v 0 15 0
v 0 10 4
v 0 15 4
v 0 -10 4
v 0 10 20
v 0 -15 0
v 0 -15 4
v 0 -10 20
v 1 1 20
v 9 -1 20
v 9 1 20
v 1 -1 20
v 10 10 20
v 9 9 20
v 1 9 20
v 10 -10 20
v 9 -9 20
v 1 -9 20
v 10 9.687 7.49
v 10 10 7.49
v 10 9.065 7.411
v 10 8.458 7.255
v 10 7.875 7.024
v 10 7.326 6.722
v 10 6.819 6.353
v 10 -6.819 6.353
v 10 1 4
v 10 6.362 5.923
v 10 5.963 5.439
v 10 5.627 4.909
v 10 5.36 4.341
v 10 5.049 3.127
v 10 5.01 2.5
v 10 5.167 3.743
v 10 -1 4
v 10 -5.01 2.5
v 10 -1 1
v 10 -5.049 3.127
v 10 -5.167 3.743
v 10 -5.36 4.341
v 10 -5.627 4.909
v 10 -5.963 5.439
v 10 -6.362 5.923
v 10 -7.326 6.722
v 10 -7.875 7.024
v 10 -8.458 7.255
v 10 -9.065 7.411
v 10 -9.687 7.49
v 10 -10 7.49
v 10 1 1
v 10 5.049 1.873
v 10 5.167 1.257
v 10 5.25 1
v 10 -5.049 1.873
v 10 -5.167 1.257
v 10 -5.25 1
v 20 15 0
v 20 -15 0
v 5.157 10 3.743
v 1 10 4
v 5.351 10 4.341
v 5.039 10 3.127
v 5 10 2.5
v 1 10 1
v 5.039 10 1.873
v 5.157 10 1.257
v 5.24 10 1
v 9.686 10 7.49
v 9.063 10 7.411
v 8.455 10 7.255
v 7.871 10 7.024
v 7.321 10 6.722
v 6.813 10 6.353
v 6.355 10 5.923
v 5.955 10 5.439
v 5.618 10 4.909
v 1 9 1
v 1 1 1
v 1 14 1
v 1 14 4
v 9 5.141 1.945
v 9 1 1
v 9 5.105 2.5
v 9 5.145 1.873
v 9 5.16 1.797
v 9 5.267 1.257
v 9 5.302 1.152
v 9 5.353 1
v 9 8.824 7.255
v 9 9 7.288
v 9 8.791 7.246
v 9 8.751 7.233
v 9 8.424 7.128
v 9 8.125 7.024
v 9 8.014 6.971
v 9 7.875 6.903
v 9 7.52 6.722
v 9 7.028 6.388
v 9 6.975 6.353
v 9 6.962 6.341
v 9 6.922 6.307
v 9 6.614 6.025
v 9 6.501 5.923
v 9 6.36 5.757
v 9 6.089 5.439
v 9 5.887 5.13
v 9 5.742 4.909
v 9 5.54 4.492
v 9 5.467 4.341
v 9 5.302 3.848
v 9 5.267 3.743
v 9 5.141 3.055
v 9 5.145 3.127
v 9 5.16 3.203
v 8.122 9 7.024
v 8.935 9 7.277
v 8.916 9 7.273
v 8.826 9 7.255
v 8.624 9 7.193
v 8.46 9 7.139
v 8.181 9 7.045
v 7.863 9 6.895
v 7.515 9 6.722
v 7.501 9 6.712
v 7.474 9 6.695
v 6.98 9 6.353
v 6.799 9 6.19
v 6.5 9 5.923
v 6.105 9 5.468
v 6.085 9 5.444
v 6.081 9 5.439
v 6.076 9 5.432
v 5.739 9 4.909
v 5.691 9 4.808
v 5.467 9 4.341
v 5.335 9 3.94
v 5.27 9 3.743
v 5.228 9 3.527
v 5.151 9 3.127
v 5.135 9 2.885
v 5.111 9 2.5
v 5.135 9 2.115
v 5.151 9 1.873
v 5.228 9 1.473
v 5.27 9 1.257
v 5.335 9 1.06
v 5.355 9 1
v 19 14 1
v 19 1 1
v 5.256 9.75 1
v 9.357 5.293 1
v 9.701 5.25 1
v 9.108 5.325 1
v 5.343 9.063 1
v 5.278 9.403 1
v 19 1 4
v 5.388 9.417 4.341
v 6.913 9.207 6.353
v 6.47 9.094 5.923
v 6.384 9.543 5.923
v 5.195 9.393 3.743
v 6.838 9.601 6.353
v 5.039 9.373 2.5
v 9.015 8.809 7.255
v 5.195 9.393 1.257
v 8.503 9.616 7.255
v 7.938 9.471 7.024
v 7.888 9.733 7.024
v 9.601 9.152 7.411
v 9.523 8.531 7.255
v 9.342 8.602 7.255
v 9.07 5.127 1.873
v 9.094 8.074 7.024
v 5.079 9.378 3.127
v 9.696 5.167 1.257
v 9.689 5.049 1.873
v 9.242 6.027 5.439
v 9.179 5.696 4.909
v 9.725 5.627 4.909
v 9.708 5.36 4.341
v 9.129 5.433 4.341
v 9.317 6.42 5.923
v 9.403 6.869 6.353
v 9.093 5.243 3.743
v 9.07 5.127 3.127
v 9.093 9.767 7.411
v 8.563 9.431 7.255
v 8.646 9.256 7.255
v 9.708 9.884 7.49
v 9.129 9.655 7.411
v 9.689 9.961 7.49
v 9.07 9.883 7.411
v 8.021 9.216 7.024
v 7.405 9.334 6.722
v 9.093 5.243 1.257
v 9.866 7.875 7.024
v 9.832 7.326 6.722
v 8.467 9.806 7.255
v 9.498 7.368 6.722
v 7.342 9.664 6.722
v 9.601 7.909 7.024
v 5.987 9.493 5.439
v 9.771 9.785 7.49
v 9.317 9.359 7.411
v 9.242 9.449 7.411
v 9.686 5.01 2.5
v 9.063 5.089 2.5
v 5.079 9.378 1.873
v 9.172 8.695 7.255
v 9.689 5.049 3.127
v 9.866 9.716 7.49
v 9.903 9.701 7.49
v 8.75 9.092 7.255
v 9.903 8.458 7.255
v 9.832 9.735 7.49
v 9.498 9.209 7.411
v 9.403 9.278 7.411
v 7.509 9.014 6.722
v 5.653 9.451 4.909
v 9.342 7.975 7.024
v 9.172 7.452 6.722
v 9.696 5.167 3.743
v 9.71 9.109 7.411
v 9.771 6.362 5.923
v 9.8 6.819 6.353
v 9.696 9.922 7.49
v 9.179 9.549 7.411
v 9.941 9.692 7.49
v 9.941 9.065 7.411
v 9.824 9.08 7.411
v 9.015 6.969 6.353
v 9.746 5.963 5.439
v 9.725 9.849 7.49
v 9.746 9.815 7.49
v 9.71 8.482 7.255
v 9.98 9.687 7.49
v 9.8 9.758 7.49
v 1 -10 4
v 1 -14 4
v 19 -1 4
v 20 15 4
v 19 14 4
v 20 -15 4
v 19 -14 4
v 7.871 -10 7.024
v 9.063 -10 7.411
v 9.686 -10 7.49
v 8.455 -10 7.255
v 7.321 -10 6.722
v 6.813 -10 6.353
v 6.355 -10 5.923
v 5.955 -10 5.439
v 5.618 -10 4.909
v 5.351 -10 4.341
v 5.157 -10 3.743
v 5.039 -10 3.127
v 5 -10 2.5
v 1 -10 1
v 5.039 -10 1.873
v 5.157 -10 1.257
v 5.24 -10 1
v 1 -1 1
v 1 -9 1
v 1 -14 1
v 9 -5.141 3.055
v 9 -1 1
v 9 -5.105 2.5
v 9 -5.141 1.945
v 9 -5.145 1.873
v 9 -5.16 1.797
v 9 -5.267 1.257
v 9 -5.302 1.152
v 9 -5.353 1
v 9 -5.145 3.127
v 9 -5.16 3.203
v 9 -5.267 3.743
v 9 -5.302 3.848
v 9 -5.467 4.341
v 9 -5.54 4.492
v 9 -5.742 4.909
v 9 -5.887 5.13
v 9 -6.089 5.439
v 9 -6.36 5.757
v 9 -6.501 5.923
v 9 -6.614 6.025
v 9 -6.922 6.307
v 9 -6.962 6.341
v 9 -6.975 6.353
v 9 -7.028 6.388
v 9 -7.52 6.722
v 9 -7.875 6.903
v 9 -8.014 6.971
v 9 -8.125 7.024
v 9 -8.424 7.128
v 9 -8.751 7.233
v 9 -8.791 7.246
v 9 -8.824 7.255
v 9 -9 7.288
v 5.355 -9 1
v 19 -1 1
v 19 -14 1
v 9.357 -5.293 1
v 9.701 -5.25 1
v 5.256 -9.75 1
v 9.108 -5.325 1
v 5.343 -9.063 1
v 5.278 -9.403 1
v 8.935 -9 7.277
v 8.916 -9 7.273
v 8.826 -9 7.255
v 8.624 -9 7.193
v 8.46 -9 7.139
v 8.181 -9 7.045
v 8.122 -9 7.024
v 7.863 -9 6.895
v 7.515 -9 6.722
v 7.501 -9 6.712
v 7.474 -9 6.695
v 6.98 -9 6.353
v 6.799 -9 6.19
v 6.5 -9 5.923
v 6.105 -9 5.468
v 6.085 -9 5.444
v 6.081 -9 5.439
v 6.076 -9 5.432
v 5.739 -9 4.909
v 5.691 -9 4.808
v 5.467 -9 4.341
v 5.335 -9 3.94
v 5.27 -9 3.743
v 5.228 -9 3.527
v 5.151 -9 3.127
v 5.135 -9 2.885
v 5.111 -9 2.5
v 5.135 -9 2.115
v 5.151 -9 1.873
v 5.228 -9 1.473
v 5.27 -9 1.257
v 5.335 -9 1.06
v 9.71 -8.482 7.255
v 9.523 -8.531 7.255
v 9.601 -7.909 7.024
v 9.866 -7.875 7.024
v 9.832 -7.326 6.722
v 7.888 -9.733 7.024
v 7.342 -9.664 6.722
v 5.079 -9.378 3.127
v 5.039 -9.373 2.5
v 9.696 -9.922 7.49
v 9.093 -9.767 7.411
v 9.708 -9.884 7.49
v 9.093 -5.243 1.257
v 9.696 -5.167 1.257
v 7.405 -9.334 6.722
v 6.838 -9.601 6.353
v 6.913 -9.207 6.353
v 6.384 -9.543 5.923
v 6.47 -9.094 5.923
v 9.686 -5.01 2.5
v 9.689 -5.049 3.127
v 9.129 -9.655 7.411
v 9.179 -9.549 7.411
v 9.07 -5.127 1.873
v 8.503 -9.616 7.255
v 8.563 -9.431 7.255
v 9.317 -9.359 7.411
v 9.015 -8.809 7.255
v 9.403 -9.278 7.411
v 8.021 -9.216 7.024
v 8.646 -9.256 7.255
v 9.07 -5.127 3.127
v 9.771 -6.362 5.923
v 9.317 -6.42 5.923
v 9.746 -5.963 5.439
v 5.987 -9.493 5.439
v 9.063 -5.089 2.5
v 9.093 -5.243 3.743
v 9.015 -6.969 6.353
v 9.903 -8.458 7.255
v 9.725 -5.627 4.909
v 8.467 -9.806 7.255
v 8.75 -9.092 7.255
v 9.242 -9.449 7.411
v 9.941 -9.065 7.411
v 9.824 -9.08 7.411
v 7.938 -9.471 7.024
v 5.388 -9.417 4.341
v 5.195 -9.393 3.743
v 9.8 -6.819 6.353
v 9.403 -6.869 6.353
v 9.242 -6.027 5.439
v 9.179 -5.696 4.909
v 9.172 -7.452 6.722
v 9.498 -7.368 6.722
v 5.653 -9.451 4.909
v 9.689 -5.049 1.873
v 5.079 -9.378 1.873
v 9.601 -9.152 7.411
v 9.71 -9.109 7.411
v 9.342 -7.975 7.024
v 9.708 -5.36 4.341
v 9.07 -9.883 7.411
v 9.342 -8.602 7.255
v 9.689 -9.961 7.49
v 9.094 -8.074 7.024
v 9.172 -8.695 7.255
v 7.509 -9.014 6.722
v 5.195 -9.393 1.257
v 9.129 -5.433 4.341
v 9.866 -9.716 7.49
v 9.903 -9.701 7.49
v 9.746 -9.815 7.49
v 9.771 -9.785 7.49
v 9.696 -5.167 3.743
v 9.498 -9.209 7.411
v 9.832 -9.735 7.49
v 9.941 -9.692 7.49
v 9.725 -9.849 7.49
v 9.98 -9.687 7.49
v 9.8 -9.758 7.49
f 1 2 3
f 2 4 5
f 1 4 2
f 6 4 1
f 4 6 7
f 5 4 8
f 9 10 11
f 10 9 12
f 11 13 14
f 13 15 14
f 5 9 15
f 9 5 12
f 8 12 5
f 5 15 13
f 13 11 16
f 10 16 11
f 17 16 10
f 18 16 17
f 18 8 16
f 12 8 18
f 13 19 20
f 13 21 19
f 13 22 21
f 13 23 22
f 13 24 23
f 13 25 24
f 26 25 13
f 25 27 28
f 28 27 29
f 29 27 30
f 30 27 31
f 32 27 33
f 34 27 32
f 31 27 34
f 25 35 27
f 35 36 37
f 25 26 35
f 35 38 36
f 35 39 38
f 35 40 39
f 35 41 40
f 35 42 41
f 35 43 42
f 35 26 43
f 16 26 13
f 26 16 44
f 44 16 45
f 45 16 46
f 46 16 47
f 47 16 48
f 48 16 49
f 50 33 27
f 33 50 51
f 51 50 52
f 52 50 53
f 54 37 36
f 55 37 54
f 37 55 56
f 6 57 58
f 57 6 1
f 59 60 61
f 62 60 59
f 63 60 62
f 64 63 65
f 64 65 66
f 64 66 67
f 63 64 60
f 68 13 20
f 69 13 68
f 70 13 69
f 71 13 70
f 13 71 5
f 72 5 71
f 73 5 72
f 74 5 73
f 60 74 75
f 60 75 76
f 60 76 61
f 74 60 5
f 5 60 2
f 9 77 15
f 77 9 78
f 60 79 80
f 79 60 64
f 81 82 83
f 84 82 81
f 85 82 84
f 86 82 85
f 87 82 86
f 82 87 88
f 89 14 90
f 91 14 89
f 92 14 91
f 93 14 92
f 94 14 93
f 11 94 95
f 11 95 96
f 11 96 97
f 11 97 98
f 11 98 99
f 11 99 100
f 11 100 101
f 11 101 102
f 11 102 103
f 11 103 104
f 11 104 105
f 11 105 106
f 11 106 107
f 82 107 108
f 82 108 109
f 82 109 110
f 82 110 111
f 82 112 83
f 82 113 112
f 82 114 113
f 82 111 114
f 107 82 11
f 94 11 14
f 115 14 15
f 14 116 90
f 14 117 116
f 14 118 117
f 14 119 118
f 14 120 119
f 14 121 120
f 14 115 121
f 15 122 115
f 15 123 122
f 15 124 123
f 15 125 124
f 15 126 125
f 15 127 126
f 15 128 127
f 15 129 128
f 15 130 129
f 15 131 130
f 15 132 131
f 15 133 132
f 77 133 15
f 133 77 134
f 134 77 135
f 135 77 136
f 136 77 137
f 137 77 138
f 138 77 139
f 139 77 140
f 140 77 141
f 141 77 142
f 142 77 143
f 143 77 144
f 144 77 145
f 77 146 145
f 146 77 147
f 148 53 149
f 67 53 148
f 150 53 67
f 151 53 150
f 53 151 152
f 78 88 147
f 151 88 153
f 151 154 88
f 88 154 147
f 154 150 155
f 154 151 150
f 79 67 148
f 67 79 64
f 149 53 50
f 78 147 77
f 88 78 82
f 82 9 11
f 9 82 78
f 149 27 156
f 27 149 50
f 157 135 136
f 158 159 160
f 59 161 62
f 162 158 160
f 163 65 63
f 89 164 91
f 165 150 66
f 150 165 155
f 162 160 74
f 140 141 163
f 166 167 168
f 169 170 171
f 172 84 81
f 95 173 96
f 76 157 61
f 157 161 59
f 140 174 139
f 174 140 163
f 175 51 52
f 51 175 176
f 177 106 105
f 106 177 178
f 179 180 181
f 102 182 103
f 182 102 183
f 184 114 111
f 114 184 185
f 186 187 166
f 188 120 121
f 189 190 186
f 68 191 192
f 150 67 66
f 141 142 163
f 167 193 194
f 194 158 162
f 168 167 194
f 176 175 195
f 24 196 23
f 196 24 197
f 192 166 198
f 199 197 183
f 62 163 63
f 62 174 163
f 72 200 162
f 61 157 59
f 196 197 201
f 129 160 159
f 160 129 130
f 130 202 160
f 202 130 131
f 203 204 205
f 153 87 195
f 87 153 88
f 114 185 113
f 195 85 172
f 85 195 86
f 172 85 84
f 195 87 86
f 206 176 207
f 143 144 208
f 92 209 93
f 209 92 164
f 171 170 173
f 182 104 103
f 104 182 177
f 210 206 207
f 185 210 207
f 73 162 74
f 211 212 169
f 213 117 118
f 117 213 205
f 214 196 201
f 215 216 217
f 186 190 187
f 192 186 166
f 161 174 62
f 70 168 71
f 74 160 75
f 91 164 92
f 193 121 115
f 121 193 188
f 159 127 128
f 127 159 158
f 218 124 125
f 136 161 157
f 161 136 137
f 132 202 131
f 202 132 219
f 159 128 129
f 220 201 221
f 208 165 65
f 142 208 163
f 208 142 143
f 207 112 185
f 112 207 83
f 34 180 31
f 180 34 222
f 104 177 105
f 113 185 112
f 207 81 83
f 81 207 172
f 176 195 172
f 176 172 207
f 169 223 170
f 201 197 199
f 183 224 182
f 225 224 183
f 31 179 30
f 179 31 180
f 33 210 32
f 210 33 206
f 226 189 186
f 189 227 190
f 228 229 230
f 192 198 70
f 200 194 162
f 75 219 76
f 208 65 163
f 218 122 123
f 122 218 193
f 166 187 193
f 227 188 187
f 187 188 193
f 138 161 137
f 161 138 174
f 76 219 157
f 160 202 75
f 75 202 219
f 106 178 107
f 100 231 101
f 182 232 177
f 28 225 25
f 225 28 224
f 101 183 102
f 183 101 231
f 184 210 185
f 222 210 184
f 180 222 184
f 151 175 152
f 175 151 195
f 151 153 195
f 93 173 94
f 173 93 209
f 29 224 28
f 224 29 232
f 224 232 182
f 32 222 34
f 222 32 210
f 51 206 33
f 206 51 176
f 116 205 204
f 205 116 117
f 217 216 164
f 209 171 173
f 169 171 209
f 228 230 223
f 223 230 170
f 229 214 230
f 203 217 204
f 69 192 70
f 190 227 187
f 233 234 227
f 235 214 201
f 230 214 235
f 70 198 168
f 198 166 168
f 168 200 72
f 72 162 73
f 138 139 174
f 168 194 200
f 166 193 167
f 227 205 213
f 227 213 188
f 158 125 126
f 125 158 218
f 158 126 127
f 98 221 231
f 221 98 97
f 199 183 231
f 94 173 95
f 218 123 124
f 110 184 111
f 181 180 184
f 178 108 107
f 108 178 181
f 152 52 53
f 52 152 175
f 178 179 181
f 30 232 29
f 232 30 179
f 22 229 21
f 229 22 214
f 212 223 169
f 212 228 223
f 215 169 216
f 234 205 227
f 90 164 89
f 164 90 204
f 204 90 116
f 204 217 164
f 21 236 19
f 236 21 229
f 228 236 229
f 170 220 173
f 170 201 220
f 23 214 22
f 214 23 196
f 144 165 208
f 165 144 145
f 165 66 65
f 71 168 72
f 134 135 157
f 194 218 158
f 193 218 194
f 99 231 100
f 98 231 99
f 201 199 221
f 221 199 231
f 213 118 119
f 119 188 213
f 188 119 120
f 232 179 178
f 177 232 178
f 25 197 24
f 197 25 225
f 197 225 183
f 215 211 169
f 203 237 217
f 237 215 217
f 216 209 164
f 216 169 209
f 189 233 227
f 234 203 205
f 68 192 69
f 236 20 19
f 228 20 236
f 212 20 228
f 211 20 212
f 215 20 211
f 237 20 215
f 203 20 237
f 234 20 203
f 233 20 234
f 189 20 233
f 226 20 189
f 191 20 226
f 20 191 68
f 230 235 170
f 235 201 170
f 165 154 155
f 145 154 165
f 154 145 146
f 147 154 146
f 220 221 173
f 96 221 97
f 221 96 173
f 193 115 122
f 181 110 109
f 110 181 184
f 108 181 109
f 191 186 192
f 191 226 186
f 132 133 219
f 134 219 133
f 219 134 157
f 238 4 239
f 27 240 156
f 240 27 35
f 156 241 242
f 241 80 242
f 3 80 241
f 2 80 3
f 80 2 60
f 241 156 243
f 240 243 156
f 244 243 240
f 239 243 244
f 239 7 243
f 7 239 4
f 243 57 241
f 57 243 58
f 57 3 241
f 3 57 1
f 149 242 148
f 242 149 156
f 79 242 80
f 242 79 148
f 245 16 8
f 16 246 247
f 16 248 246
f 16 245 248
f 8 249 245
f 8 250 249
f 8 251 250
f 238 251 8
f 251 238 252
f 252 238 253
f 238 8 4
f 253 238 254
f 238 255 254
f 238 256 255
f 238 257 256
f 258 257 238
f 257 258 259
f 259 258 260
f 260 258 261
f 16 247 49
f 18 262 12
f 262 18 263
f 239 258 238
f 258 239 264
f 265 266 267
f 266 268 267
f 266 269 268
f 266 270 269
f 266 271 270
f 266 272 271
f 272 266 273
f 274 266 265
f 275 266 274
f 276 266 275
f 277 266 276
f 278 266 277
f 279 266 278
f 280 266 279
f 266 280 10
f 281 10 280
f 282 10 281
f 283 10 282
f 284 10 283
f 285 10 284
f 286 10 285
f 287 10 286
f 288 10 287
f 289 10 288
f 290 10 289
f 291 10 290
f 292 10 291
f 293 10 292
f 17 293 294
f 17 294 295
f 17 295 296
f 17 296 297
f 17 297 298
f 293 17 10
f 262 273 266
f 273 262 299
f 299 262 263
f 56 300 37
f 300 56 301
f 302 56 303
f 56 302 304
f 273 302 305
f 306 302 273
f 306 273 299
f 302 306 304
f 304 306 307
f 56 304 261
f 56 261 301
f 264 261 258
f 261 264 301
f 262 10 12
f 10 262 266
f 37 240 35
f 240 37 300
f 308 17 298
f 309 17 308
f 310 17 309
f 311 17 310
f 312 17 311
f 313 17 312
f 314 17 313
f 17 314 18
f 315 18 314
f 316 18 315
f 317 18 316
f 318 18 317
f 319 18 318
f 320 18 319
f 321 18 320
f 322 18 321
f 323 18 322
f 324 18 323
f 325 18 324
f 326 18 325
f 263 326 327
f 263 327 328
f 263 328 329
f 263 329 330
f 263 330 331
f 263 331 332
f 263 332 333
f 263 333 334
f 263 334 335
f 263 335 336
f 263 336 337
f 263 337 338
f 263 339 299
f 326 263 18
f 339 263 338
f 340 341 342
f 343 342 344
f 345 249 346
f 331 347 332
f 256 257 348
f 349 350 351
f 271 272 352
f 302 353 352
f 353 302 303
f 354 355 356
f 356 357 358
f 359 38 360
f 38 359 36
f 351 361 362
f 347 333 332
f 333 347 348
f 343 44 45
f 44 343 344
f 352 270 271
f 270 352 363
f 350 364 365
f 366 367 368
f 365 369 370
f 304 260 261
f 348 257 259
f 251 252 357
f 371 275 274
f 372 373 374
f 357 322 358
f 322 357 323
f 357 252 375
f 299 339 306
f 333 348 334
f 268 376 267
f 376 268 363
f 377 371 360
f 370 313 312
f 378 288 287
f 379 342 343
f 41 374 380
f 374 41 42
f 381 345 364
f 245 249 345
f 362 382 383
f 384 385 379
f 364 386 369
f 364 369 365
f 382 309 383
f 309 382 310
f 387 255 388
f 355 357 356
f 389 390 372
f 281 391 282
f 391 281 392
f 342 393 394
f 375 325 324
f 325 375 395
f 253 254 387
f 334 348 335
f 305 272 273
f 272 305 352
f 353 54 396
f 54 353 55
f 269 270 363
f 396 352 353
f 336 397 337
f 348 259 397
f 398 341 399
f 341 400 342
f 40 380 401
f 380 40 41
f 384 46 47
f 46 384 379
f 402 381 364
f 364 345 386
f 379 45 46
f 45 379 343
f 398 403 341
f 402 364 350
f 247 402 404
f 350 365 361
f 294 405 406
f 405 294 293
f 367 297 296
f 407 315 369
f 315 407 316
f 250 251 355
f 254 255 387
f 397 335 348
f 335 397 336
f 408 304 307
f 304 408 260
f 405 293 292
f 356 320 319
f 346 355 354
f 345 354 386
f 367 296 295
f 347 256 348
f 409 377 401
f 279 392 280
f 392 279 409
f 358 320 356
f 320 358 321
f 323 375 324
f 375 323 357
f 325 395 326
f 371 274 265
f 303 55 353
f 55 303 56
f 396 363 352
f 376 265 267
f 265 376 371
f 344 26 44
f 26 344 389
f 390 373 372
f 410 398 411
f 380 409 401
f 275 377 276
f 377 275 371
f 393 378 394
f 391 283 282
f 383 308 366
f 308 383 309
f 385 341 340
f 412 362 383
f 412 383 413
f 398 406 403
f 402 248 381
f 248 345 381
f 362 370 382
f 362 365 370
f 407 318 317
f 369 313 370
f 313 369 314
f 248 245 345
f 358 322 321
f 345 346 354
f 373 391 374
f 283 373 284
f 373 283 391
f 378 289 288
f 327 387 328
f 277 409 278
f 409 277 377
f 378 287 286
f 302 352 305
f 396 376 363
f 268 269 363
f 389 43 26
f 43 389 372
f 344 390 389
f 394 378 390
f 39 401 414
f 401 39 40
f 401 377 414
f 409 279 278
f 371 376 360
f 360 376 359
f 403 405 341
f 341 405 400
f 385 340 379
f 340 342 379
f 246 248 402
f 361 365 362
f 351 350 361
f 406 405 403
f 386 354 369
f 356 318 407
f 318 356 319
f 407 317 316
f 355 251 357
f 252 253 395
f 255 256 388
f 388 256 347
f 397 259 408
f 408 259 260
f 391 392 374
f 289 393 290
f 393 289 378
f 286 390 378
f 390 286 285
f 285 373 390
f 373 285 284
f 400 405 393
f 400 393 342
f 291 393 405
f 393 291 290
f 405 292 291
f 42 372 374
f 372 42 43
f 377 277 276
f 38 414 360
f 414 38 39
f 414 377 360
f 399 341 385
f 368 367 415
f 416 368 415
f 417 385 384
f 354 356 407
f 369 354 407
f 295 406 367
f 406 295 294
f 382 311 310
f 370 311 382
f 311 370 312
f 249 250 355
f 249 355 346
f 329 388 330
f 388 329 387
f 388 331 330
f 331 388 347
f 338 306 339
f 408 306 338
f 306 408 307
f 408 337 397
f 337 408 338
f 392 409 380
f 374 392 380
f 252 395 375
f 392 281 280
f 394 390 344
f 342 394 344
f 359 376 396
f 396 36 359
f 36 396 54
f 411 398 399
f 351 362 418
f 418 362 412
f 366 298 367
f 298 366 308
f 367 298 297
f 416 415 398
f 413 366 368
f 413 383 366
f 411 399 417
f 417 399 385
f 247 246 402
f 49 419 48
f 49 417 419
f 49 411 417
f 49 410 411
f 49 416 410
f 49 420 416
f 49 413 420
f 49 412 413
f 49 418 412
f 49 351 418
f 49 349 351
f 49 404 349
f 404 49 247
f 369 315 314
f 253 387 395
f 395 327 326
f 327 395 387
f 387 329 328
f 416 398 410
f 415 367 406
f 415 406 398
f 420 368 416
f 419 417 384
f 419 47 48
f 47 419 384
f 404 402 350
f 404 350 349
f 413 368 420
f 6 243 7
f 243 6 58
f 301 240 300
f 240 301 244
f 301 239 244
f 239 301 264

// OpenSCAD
$fn=50;

height = 20;
width = 10;

difference() {
  cube([width, width, height]);
  translate([1, 1, 1]) {
    cube([width-2, width-2, height]);
  }
  translate([width, width, width/4]) {
    sphere(r=width/2);
  }
}

difference() {
  cube([width*2, width*1.5, 4]);
  translate([1, 1, 1]) {
    cube([width*2 - 2, width*1.5-2, 5]);
  }
}

mirror([0, 1, 0]) {
  difference() {
    cube([width, width, height]);
    translate([1, 1, 1]) {
      cube([width-2, width-2, height]);
    }
    translate([width, width, width/4]) {
      sphere(r=width/2);
    }
  }

  difference() {
    cube([width*2, width*1.5, 4]);
    translate([1, 1, 1]) {
      cube([width*2-2, width*1.5-2, 5]);
    }
  }
}
